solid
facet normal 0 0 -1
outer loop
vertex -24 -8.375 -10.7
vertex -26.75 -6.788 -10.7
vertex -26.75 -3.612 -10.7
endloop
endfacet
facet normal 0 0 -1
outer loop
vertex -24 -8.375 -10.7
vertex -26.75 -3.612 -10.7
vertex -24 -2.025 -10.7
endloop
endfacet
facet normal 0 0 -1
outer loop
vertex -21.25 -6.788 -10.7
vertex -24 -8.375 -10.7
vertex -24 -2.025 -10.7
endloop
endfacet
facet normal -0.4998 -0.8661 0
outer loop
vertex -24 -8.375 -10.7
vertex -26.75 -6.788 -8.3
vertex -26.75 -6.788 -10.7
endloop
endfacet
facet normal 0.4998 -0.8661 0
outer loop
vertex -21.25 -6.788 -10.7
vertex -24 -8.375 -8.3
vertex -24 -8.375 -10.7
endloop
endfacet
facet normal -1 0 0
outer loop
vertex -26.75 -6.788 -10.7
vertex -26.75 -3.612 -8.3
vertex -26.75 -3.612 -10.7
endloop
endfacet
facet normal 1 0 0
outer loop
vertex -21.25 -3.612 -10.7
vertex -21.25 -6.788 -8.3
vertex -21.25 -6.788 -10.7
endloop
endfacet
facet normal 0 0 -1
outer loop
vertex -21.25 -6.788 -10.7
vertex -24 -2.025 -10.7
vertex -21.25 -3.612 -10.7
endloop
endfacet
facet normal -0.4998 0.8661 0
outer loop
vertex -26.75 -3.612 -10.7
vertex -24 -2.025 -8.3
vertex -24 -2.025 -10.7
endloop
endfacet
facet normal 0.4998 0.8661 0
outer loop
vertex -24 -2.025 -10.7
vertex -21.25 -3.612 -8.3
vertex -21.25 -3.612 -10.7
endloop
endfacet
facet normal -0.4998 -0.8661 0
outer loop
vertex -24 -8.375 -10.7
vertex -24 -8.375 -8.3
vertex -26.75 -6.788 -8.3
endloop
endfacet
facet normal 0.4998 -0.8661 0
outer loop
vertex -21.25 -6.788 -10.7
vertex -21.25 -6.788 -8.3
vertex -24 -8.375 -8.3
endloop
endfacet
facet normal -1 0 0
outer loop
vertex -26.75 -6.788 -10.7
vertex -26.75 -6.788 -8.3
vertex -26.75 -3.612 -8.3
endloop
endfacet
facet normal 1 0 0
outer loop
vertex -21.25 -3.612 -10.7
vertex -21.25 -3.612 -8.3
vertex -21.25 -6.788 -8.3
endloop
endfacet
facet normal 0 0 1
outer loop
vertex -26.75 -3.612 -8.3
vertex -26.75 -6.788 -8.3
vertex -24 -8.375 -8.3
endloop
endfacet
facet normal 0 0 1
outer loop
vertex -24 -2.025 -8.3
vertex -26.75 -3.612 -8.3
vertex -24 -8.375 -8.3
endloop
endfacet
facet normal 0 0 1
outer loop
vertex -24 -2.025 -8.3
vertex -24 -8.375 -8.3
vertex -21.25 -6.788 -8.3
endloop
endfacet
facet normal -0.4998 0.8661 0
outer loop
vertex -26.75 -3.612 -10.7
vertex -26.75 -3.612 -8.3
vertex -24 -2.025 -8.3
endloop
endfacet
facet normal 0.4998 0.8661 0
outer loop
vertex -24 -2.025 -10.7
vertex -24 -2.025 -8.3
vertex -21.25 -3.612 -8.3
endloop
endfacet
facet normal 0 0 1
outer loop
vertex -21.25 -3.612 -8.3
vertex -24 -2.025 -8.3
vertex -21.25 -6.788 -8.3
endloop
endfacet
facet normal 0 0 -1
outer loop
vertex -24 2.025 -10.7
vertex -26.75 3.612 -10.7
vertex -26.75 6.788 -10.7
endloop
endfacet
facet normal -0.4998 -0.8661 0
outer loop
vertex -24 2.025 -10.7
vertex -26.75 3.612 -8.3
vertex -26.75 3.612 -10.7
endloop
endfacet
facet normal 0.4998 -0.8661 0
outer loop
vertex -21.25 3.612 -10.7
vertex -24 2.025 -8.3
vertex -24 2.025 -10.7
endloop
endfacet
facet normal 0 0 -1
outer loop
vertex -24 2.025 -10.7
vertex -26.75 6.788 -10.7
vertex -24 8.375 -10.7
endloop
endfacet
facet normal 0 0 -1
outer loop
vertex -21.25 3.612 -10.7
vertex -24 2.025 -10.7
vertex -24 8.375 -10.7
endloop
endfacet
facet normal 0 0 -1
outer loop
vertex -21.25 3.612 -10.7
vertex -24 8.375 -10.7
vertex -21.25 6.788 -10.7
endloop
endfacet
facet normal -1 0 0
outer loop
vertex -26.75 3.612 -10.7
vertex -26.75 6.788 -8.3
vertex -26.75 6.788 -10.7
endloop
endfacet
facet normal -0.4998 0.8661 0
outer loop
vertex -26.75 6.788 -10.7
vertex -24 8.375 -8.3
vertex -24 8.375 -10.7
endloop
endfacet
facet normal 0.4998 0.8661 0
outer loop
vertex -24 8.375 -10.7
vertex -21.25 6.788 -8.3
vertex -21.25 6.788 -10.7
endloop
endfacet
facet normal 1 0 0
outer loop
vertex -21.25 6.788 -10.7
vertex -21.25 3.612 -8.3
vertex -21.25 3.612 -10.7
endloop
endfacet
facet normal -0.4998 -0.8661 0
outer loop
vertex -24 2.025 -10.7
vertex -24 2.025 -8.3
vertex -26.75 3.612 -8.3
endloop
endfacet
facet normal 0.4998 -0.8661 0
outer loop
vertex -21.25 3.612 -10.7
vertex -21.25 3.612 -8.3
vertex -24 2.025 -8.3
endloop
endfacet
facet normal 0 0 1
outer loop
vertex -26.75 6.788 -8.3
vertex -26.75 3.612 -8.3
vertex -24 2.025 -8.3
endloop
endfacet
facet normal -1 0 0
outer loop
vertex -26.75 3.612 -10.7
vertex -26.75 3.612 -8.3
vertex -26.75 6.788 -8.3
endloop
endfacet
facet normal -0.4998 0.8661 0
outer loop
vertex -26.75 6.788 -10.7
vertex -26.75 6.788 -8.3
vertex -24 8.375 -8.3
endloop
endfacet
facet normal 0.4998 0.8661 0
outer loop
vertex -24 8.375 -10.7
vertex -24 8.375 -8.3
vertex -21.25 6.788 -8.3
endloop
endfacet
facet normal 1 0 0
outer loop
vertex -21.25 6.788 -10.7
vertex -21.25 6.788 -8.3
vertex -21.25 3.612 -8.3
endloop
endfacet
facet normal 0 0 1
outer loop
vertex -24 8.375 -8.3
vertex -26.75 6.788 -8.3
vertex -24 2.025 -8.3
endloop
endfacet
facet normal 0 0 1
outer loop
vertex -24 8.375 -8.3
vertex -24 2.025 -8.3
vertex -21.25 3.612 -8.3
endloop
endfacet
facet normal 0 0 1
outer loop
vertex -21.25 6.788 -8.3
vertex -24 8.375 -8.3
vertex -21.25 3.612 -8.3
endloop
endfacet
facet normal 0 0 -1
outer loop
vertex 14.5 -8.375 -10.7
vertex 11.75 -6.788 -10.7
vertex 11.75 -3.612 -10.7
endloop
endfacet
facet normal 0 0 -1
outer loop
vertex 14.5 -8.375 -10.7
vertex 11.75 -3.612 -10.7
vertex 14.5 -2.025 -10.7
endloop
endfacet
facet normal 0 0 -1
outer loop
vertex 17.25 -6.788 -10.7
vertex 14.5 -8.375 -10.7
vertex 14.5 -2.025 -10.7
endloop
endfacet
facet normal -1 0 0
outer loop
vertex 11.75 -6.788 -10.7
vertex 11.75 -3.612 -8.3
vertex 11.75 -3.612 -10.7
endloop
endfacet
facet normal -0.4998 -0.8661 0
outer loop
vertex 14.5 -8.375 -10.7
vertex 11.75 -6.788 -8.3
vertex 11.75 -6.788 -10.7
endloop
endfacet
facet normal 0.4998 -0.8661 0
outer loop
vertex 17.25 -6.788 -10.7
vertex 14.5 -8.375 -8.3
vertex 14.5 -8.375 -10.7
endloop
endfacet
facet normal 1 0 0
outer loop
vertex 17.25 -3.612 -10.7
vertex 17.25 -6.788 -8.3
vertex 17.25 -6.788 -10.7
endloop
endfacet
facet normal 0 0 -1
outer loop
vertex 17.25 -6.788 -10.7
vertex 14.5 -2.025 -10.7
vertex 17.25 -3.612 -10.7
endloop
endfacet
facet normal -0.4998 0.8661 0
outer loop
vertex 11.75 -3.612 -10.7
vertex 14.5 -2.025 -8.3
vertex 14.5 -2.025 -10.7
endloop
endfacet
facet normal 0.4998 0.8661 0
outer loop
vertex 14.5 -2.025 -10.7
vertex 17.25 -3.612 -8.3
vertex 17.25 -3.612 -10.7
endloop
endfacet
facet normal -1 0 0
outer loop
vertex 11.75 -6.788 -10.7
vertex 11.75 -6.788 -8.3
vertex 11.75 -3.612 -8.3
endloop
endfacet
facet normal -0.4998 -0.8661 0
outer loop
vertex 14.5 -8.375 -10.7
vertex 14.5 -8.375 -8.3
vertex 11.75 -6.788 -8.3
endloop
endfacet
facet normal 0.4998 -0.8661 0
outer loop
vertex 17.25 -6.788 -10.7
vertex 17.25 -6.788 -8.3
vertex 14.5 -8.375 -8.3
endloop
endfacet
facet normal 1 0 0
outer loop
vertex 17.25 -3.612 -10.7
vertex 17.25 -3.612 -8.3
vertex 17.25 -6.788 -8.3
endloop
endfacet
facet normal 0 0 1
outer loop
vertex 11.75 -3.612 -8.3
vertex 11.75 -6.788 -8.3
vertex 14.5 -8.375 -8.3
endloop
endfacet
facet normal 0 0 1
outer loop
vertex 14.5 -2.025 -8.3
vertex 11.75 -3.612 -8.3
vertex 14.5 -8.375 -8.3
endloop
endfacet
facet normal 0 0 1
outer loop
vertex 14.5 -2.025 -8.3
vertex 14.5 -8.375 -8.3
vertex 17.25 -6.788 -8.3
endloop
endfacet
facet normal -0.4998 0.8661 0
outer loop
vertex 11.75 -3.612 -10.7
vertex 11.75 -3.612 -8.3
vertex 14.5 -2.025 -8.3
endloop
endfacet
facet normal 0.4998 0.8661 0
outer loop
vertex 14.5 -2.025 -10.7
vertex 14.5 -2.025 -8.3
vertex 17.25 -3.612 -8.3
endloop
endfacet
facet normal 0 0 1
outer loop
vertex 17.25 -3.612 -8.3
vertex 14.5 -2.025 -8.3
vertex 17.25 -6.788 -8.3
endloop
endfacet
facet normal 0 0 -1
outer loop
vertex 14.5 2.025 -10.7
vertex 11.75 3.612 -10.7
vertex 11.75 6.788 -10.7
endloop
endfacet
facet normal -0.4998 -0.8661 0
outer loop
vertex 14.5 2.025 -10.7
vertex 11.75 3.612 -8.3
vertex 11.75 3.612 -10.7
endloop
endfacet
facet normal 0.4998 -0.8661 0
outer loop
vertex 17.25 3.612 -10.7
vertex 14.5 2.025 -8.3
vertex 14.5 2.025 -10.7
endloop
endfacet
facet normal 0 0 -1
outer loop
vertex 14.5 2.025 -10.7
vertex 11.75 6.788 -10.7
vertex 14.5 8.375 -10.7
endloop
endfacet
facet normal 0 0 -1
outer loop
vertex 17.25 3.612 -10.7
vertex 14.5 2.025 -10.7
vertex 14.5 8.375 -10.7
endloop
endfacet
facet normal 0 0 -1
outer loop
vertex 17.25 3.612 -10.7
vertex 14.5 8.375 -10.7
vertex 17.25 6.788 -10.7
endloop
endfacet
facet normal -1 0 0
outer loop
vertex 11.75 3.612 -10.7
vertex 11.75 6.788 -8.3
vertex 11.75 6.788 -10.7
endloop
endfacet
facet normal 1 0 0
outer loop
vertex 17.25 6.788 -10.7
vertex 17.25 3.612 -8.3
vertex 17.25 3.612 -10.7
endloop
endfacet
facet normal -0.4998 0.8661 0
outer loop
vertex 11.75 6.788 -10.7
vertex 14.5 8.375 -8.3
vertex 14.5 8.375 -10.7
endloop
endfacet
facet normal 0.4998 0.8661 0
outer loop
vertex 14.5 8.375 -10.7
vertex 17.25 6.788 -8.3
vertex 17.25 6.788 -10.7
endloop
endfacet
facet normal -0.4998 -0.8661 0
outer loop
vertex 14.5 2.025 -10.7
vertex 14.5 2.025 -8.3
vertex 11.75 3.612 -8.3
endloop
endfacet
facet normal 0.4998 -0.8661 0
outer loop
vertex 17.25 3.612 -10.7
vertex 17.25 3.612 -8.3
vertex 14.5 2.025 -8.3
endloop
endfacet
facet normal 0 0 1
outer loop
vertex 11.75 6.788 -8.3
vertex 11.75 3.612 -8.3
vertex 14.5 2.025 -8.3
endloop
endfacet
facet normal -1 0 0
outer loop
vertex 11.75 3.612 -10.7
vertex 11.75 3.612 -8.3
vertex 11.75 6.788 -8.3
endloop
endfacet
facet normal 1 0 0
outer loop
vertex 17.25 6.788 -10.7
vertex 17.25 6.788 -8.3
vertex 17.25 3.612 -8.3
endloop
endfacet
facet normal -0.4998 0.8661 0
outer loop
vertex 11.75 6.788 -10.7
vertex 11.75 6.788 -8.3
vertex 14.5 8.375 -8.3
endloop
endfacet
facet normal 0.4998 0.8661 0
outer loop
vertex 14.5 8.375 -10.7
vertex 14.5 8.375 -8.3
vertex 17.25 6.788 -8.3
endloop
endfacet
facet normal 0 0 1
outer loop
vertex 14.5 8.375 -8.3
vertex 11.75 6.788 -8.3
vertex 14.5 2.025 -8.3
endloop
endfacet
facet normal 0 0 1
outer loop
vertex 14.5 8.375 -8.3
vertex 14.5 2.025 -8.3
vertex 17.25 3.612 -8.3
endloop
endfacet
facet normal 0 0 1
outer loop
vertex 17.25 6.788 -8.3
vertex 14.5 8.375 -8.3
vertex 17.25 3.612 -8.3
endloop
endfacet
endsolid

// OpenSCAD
$fn = 50;

difference() {
	union() {
		translate(v = [-24, -5.2, -10.7]) {
			rotate(a = [0, 0, 30]) {
				linear_extrude(height = 2.4) {
					polygon(points = [[3.1754264805429417, 0.0], [1.5877132402714713, 2.75], [-1.5877132402714702, 2.7500000000000004], [-3.1754264805429417, 3.888775875324659e-16], [-1.5877132402714722, -2.7499999999999996], [1.5877132402714687, -2.7500000000000013]]);
				}
			}
		}
		translate(v = [-24, 5.2, -10.7]) {
			rotate(a = [0, 0, 30]) {
				linear_extrude(height = 2.4) {
					polygon(points = [[3.1754264805429417, 0.0], [1.5877132402714713, 2.75], [-1.5877132402714702, 2.7500000000000004], [-3.1754264805429417, 3.888775875324659e-16], [-1.5877132402714722, -2.7499999999999996], [1.5877132402714687, -2.7500000000000013]]);
				}
			}
		}
		translate(v = [14.5, -5.2, -10.7]) {
			rotate(a = [0, 0, 30]) {
				linear_extrude(height = 2.4) {
					polygon(points = [[3.1754264805429417, 0.0], [1.5877132402714713, 2.75], [-1.5877132402714702, 2.7500000000000004], [-3.1754264805429417, 3.888775875324659e-16], [-1.5877132402714722, -2.7499999999999996], [1.5877132402714687, -2.7500000000000013]]);
				}
			}
		}
		translate(v = [14.5, 5.2, -10.7]) {
			rotate(a = [0, 0, 30]) {
				linear_extrude(height = 2.4) {
					polygon(points = [[3.1754264805429417, 0.0], [1.5877132402714713, 2.75], [-1.5877132402714702, 2.7500000000000004], [-3.1754264805429417, 3.888775875324659e-16], [-1.5877132402714722, -2.7499999999999996], [1.5877132402714687, -2.7500000000000013]]);
				}
			}
		}
	}
	union();
}
